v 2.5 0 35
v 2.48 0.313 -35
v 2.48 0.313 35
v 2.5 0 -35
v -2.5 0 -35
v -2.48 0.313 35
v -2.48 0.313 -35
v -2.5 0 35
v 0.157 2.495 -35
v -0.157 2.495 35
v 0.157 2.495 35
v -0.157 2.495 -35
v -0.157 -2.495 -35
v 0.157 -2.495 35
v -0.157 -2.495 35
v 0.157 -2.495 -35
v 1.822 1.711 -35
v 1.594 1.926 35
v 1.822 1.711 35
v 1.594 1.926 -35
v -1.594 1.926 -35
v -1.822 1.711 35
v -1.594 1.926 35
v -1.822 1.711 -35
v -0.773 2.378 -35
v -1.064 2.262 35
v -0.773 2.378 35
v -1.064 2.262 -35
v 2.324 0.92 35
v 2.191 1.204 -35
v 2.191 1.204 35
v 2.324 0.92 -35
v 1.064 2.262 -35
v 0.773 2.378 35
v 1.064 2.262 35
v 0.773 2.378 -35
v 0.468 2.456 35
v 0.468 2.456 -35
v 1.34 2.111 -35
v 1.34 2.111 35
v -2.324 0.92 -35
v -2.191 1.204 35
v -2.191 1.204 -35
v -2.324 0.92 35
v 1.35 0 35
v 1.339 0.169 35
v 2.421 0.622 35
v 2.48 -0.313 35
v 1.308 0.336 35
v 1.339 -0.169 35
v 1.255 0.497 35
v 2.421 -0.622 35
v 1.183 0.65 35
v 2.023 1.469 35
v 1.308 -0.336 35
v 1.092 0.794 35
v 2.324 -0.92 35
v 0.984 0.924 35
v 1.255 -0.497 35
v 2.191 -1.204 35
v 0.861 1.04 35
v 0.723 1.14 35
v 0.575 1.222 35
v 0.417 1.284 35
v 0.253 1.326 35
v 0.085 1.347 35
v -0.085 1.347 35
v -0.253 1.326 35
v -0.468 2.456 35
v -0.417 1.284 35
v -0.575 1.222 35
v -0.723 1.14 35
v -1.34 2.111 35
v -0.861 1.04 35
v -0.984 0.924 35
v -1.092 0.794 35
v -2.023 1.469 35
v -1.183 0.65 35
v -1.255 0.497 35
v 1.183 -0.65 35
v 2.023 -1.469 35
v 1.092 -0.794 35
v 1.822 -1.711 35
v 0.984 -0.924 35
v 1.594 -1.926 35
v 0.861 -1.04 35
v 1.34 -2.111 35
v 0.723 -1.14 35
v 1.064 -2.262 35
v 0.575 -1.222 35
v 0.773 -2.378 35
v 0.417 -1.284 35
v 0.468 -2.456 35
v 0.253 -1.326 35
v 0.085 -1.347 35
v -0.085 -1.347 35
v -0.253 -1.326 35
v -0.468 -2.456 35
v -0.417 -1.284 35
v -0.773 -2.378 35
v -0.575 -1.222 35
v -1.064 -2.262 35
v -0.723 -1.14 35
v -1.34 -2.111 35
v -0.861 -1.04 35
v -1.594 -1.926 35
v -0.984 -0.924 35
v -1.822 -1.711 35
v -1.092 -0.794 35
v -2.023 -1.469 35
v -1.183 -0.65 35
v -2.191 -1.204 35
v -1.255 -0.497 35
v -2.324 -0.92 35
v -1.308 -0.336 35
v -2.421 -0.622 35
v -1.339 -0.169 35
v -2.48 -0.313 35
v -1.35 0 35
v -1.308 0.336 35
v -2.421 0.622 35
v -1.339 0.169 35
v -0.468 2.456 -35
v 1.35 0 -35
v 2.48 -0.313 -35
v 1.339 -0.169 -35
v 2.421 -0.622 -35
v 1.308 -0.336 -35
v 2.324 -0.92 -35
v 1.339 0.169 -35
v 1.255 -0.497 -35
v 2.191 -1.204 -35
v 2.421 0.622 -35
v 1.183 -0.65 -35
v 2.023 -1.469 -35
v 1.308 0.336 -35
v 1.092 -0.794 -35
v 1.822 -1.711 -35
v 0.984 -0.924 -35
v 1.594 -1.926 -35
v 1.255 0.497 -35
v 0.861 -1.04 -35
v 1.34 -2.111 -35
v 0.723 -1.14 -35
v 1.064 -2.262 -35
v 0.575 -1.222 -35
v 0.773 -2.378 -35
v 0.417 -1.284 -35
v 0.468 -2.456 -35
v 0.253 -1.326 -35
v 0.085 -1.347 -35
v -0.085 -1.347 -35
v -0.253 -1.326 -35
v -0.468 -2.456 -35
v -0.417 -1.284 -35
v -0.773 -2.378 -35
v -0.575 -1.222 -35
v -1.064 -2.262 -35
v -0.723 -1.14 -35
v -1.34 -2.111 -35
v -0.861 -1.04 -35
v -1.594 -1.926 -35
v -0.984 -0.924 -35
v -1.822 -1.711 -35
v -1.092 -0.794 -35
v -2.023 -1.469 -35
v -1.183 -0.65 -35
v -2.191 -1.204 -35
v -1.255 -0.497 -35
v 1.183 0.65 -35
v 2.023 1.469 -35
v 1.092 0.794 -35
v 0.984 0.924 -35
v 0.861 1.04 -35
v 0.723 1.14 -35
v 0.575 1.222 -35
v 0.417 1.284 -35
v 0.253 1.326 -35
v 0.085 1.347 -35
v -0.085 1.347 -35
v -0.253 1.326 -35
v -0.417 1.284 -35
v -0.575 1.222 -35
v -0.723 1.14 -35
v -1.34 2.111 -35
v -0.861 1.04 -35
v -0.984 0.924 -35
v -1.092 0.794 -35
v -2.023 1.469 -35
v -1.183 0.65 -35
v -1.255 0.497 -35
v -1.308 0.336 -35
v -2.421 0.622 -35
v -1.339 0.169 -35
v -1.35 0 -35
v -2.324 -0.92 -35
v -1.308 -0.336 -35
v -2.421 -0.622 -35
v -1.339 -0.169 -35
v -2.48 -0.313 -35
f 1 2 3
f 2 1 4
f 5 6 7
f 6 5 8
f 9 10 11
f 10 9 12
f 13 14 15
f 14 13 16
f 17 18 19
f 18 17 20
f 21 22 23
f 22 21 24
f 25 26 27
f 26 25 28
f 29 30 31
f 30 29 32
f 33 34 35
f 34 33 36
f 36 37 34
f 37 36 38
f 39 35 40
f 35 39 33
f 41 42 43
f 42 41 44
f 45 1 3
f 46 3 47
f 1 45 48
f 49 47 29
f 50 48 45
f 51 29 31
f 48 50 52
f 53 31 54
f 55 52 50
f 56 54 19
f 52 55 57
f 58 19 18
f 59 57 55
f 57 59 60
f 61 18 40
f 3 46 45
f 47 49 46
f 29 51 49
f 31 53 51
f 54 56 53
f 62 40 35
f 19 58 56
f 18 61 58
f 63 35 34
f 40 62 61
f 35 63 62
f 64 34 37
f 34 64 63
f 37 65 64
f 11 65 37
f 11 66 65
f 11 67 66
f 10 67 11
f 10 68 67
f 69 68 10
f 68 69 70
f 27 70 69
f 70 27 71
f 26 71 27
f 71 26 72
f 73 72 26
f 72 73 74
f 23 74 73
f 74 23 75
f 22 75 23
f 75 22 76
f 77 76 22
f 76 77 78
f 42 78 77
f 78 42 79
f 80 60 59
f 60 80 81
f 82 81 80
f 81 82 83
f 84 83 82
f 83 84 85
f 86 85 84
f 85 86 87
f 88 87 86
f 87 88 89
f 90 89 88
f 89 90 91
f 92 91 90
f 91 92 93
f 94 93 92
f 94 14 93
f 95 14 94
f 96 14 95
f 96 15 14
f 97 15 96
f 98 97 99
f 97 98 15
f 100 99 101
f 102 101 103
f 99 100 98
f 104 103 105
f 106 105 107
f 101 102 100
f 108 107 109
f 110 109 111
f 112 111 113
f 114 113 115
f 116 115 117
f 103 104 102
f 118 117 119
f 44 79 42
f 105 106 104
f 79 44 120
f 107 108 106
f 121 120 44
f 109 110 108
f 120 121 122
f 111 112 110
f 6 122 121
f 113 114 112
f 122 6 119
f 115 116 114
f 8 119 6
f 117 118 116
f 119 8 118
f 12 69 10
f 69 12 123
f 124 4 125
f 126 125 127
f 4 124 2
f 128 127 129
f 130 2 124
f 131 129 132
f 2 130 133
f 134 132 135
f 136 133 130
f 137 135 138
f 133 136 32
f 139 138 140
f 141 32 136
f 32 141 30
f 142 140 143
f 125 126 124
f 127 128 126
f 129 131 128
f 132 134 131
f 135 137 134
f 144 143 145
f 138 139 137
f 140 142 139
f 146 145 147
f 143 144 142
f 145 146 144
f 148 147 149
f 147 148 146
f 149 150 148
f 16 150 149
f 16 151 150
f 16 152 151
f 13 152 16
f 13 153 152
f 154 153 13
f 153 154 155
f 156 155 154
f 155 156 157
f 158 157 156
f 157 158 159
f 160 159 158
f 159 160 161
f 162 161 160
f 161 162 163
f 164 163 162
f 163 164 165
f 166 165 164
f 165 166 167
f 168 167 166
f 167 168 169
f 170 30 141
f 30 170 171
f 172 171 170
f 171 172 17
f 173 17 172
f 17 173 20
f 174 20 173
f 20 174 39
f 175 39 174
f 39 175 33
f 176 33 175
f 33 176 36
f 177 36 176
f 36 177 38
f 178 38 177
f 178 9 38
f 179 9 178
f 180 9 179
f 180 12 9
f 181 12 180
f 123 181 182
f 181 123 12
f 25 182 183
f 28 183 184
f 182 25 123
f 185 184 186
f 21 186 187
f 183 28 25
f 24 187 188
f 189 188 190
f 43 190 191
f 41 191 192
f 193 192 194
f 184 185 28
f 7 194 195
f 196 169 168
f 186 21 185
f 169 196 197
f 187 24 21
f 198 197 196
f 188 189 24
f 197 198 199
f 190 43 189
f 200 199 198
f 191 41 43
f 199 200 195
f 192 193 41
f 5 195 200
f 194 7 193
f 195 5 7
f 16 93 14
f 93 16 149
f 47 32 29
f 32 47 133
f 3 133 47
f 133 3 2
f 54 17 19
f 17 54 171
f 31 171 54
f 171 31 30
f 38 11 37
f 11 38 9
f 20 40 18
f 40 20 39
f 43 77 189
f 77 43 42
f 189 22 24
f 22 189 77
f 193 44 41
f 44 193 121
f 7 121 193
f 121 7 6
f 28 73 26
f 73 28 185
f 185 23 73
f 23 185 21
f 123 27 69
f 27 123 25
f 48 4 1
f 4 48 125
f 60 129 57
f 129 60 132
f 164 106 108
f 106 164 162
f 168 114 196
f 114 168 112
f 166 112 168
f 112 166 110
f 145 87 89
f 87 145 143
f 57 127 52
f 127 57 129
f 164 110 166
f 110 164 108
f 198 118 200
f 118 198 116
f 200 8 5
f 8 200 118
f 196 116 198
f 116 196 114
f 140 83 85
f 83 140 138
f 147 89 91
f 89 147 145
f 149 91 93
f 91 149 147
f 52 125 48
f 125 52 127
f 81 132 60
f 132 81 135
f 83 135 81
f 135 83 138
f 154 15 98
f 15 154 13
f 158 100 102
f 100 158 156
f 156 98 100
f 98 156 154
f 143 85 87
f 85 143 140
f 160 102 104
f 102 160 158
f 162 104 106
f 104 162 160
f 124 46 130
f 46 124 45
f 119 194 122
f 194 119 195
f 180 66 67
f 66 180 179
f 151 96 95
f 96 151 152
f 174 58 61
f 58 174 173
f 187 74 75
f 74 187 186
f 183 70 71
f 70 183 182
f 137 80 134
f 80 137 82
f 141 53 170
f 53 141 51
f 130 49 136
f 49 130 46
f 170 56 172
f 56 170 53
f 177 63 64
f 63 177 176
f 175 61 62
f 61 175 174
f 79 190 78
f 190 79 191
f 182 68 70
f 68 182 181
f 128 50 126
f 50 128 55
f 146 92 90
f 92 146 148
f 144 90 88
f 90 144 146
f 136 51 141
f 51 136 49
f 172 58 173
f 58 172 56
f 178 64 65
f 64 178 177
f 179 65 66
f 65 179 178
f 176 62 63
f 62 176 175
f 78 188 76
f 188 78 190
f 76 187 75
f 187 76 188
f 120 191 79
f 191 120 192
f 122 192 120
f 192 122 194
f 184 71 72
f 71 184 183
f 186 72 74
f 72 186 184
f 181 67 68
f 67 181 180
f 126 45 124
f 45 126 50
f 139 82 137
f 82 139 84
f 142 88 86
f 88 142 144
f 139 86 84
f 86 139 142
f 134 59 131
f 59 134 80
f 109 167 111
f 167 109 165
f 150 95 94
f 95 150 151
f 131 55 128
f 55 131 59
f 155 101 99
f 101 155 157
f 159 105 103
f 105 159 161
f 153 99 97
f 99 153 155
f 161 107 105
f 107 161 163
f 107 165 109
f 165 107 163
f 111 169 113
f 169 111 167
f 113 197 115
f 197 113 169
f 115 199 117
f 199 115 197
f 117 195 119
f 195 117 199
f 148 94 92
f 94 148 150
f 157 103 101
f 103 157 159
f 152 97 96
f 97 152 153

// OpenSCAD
$fn = 50;


difference() {
	union() {
		translate(v = [0, 0, -35.0000000000]) {
			cylinder(h = 70, r = 2.5000000000);
		}
	}
	union() {
		translate(v = [0, 0, -100.0000000000]) {
			cylinder(h = 200, r = 1.3500000000);
		}
	}
}
